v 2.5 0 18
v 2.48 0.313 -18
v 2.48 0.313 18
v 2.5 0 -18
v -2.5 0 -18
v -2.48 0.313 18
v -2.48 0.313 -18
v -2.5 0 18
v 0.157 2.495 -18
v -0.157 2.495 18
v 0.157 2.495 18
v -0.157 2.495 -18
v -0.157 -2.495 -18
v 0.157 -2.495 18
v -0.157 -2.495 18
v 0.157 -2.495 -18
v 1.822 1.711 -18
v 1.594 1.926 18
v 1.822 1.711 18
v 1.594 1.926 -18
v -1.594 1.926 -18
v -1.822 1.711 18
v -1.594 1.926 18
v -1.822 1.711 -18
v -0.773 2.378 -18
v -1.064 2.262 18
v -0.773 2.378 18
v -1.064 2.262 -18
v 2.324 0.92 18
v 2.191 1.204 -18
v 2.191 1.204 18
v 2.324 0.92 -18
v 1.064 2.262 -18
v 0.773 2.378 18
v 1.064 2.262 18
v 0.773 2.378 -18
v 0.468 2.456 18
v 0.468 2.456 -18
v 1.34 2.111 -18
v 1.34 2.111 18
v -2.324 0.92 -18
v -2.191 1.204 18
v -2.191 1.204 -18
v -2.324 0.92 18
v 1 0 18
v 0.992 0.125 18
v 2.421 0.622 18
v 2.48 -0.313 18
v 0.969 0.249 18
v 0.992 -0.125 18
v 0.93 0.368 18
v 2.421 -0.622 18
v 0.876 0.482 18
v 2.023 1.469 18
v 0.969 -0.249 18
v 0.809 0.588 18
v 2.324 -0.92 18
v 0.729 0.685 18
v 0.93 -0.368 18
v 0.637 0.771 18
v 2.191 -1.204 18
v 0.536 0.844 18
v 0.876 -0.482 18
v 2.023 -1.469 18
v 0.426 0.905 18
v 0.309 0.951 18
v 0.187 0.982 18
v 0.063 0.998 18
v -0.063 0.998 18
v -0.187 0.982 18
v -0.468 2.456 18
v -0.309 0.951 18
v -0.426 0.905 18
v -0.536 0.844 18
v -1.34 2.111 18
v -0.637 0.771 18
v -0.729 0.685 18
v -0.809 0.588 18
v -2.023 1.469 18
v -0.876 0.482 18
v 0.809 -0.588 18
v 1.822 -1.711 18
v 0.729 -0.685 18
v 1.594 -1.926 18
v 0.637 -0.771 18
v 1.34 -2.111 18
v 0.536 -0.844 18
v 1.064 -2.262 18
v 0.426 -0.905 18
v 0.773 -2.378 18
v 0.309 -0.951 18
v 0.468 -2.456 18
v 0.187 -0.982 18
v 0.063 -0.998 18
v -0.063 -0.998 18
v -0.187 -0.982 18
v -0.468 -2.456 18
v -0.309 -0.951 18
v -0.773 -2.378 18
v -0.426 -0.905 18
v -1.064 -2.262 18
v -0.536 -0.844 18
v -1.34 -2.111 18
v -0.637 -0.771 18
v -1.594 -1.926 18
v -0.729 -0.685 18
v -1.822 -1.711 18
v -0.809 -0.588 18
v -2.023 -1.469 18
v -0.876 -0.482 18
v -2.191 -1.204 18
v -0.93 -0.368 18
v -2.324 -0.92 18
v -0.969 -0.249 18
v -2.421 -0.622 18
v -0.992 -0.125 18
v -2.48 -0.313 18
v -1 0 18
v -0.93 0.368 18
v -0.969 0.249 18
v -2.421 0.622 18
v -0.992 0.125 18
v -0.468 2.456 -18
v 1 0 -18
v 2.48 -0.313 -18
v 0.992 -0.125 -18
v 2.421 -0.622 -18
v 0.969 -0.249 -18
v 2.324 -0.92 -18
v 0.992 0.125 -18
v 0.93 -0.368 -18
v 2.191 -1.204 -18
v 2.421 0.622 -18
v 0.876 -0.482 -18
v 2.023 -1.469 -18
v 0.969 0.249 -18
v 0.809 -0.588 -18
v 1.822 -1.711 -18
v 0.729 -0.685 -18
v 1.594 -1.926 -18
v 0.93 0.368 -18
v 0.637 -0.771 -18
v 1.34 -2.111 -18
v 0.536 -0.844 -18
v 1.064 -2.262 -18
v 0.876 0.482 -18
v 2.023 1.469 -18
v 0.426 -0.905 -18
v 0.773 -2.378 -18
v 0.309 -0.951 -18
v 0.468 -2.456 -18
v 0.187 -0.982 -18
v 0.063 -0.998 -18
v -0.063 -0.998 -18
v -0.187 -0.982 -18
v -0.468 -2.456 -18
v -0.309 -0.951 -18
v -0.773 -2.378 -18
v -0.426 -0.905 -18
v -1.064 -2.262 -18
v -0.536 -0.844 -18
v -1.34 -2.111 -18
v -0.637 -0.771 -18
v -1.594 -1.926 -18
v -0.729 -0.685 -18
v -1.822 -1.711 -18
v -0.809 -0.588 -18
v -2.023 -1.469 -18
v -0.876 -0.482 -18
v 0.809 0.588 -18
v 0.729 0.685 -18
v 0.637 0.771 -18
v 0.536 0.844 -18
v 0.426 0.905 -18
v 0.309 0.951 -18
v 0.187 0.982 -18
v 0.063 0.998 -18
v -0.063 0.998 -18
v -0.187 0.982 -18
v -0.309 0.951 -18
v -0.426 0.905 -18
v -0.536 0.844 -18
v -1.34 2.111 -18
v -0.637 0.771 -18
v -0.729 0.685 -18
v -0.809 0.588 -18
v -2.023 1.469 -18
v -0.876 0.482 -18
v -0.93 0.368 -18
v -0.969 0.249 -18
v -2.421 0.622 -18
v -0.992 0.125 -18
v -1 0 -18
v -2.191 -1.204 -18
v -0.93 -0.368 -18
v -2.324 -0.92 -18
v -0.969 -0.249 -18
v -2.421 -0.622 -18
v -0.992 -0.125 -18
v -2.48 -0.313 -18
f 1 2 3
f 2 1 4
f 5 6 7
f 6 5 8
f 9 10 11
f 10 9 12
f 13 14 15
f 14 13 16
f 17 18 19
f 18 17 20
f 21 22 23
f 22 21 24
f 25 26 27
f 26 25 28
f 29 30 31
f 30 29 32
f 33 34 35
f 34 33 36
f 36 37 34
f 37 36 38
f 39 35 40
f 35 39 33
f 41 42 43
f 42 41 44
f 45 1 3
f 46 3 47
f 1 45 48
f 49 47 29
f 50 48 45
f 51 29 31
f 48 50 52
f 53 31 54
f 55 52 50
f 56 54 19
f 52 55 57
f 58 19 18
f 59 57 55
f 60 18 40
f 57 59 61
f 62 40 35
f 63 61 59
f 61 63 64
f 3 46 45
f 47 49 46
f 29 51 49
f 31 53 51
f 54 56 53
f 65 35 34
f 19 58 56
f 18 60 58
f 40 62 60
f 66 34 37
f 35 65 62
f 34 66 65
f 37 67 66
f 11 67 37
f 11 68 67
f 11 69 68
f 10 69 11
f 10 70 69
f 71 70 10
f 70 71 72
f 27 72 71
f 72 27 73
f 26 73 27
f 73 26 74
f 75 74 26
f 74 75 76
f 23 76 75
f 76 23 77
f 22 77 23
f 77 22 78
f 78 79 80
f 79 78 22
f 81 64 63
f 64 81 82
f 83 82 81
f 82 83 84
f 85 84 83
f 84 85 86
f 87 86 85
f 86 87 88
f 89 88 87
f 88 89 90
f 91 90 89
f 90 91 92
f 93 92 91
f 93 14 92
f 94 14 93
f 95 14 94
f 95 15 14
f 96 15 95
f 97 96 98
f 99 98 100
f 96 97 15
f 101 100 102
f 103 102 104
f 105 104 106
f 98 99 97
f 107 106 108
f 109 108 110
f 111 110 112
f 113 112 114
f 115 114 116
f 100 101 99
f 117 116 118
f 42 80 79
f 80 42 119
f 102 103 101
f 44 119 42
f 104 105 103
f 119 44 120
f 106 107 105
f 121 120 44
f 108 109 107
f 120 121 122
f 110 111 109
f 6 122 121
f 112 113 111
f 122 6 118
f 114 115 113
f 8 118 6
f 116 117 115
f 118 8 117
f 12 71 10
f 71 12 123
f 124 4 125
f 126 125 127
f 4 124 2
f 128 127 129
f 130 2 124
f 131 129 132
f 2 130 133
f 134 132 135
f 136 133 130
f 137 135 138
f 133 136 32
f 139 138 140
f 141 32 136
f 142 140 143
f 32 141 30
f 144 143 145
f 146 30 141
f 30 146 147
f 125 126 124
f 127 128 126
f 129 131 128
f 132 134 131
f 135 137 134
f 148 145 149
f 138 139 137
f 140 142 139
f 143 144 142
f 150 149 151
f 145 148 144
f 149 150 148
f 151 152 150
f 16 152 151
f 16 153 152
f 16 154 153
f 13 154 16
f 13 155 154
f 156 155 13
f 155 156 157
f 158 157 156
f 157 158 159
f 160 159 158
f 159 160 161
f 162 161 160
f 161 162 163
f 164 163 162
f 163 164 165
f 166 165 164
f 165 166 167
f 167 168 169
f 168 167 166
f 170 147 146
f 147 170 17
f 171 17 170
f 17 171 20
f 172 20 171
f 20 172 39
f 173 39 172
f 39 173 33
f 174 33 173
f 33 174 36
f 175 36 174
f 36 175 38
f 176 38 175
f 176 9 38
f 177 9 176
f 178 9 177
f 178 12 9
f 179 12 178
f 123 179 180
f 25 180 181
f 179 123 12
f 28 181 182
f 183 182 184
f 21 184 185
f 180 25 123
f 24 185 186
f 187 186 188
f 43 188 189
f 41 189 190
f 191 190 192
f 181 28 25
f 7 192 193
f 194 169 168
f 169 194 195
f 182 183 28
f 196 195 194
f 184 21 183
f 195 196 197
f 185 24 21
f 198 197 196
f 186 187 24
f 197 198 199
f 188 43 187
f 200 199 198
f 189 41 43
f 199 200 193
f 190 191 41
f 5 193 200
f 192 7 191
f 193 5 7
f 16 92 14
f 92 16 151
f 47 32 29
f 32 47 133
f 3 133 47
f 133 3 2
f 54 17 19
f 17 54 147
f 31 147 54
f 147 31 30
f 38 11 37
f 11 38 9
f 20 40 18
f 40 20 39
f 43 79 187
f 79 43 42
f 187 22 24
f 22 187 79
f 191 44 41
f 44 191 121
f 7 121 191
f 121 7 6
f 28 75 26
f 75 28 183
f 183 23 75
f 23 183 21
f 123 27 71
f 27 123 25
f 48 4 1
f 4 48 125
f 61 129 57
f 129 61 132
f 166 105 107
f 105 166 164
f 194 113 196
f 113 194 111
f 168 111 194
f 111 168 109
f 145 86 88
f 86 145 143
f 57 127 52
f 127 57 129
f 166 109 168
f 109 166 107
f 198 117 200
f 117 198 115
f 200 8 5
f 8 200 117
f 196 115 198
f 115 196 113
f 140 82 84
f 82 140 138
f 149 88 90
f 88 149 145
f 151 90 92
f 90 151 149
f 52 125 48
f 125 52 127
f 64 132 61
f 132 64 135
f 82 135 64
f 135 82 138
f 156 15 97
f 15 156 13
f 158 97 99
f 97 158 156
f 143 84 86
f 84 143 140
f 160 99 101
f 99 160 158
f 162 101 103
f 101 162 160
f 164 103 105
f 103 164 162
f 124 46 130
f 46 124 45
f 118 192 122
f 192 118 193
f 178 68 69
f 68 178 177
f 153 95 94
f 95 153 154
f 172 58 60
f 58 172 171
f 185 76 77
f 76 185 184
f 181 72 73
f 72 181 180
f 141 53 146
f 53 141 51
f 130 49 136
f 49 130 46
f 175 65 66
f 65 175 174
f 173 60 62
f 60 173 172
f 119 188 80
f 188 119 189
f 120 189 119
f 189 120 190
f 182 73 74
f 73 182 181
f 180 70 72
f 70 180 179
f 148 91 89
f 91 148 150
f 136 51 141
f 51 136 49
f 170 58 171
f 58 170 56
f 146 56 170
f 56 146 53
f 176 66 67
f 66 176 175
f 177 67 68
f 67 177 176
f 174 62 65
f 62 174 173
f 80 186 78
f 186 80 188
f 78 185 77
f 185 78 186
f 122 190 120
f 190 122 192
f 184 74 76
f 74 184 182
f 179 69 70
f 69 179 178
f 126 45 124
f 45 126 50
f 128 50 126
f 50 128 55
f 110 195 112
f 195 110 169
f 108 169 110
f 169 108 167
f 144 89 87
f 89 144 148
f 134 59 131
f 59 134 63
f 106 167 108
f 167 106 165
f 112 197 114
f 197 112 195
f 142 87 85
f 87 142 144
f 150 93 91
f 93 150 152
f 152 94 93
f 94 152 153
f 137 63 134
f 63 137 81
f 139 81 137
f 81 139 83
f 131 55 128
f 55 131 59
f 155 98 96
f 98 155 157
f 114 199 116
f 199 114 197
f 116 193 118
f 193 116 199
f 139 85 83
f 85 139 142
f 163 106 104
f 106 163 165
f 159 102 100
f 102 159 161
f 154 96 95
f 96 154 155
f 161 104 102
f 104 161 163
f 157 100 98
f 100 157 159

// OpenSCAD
$fn = 50;


difference() {
	union() {
		translate(v = [0, 0, -18.0000000000]) {
			cylinder(h = 36, r = 2.5000000000);
		}
	}
	union() {
		translate(v = [0, 0, -100.0000000000]) {
			cylinder(h = 200, r = 1.0000000000);
		}
	}
}
